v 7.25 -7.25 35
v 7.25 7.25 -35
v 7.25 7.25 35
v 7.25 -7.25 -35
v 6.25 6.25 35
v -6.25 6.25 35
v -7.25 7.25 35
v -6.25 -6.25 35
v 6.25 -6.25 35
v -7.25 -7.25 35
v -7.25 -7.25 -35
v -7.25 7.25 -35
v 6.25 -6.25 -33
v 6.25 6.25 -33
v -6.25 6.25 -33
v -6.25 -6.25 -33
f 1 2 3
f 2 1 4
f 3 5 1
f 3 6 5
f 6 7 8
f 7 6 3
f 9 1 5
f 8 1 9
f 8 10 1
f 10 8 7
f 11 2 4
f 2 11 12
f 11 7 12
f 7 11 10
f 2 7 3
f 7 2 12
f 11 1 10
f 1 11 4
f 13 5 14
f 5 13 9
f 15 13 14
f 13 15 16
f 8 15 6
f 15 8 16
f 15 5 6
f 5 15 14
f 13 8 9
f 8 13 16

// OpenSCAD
$fn = 100;
difference()
{
  cube(size = [14.5, 14.5, 70], center = true);
  translate(v = [0, 0, 2])
  {
    cube(size = [12.5, 12.5, 70], center = true);
  }
}
